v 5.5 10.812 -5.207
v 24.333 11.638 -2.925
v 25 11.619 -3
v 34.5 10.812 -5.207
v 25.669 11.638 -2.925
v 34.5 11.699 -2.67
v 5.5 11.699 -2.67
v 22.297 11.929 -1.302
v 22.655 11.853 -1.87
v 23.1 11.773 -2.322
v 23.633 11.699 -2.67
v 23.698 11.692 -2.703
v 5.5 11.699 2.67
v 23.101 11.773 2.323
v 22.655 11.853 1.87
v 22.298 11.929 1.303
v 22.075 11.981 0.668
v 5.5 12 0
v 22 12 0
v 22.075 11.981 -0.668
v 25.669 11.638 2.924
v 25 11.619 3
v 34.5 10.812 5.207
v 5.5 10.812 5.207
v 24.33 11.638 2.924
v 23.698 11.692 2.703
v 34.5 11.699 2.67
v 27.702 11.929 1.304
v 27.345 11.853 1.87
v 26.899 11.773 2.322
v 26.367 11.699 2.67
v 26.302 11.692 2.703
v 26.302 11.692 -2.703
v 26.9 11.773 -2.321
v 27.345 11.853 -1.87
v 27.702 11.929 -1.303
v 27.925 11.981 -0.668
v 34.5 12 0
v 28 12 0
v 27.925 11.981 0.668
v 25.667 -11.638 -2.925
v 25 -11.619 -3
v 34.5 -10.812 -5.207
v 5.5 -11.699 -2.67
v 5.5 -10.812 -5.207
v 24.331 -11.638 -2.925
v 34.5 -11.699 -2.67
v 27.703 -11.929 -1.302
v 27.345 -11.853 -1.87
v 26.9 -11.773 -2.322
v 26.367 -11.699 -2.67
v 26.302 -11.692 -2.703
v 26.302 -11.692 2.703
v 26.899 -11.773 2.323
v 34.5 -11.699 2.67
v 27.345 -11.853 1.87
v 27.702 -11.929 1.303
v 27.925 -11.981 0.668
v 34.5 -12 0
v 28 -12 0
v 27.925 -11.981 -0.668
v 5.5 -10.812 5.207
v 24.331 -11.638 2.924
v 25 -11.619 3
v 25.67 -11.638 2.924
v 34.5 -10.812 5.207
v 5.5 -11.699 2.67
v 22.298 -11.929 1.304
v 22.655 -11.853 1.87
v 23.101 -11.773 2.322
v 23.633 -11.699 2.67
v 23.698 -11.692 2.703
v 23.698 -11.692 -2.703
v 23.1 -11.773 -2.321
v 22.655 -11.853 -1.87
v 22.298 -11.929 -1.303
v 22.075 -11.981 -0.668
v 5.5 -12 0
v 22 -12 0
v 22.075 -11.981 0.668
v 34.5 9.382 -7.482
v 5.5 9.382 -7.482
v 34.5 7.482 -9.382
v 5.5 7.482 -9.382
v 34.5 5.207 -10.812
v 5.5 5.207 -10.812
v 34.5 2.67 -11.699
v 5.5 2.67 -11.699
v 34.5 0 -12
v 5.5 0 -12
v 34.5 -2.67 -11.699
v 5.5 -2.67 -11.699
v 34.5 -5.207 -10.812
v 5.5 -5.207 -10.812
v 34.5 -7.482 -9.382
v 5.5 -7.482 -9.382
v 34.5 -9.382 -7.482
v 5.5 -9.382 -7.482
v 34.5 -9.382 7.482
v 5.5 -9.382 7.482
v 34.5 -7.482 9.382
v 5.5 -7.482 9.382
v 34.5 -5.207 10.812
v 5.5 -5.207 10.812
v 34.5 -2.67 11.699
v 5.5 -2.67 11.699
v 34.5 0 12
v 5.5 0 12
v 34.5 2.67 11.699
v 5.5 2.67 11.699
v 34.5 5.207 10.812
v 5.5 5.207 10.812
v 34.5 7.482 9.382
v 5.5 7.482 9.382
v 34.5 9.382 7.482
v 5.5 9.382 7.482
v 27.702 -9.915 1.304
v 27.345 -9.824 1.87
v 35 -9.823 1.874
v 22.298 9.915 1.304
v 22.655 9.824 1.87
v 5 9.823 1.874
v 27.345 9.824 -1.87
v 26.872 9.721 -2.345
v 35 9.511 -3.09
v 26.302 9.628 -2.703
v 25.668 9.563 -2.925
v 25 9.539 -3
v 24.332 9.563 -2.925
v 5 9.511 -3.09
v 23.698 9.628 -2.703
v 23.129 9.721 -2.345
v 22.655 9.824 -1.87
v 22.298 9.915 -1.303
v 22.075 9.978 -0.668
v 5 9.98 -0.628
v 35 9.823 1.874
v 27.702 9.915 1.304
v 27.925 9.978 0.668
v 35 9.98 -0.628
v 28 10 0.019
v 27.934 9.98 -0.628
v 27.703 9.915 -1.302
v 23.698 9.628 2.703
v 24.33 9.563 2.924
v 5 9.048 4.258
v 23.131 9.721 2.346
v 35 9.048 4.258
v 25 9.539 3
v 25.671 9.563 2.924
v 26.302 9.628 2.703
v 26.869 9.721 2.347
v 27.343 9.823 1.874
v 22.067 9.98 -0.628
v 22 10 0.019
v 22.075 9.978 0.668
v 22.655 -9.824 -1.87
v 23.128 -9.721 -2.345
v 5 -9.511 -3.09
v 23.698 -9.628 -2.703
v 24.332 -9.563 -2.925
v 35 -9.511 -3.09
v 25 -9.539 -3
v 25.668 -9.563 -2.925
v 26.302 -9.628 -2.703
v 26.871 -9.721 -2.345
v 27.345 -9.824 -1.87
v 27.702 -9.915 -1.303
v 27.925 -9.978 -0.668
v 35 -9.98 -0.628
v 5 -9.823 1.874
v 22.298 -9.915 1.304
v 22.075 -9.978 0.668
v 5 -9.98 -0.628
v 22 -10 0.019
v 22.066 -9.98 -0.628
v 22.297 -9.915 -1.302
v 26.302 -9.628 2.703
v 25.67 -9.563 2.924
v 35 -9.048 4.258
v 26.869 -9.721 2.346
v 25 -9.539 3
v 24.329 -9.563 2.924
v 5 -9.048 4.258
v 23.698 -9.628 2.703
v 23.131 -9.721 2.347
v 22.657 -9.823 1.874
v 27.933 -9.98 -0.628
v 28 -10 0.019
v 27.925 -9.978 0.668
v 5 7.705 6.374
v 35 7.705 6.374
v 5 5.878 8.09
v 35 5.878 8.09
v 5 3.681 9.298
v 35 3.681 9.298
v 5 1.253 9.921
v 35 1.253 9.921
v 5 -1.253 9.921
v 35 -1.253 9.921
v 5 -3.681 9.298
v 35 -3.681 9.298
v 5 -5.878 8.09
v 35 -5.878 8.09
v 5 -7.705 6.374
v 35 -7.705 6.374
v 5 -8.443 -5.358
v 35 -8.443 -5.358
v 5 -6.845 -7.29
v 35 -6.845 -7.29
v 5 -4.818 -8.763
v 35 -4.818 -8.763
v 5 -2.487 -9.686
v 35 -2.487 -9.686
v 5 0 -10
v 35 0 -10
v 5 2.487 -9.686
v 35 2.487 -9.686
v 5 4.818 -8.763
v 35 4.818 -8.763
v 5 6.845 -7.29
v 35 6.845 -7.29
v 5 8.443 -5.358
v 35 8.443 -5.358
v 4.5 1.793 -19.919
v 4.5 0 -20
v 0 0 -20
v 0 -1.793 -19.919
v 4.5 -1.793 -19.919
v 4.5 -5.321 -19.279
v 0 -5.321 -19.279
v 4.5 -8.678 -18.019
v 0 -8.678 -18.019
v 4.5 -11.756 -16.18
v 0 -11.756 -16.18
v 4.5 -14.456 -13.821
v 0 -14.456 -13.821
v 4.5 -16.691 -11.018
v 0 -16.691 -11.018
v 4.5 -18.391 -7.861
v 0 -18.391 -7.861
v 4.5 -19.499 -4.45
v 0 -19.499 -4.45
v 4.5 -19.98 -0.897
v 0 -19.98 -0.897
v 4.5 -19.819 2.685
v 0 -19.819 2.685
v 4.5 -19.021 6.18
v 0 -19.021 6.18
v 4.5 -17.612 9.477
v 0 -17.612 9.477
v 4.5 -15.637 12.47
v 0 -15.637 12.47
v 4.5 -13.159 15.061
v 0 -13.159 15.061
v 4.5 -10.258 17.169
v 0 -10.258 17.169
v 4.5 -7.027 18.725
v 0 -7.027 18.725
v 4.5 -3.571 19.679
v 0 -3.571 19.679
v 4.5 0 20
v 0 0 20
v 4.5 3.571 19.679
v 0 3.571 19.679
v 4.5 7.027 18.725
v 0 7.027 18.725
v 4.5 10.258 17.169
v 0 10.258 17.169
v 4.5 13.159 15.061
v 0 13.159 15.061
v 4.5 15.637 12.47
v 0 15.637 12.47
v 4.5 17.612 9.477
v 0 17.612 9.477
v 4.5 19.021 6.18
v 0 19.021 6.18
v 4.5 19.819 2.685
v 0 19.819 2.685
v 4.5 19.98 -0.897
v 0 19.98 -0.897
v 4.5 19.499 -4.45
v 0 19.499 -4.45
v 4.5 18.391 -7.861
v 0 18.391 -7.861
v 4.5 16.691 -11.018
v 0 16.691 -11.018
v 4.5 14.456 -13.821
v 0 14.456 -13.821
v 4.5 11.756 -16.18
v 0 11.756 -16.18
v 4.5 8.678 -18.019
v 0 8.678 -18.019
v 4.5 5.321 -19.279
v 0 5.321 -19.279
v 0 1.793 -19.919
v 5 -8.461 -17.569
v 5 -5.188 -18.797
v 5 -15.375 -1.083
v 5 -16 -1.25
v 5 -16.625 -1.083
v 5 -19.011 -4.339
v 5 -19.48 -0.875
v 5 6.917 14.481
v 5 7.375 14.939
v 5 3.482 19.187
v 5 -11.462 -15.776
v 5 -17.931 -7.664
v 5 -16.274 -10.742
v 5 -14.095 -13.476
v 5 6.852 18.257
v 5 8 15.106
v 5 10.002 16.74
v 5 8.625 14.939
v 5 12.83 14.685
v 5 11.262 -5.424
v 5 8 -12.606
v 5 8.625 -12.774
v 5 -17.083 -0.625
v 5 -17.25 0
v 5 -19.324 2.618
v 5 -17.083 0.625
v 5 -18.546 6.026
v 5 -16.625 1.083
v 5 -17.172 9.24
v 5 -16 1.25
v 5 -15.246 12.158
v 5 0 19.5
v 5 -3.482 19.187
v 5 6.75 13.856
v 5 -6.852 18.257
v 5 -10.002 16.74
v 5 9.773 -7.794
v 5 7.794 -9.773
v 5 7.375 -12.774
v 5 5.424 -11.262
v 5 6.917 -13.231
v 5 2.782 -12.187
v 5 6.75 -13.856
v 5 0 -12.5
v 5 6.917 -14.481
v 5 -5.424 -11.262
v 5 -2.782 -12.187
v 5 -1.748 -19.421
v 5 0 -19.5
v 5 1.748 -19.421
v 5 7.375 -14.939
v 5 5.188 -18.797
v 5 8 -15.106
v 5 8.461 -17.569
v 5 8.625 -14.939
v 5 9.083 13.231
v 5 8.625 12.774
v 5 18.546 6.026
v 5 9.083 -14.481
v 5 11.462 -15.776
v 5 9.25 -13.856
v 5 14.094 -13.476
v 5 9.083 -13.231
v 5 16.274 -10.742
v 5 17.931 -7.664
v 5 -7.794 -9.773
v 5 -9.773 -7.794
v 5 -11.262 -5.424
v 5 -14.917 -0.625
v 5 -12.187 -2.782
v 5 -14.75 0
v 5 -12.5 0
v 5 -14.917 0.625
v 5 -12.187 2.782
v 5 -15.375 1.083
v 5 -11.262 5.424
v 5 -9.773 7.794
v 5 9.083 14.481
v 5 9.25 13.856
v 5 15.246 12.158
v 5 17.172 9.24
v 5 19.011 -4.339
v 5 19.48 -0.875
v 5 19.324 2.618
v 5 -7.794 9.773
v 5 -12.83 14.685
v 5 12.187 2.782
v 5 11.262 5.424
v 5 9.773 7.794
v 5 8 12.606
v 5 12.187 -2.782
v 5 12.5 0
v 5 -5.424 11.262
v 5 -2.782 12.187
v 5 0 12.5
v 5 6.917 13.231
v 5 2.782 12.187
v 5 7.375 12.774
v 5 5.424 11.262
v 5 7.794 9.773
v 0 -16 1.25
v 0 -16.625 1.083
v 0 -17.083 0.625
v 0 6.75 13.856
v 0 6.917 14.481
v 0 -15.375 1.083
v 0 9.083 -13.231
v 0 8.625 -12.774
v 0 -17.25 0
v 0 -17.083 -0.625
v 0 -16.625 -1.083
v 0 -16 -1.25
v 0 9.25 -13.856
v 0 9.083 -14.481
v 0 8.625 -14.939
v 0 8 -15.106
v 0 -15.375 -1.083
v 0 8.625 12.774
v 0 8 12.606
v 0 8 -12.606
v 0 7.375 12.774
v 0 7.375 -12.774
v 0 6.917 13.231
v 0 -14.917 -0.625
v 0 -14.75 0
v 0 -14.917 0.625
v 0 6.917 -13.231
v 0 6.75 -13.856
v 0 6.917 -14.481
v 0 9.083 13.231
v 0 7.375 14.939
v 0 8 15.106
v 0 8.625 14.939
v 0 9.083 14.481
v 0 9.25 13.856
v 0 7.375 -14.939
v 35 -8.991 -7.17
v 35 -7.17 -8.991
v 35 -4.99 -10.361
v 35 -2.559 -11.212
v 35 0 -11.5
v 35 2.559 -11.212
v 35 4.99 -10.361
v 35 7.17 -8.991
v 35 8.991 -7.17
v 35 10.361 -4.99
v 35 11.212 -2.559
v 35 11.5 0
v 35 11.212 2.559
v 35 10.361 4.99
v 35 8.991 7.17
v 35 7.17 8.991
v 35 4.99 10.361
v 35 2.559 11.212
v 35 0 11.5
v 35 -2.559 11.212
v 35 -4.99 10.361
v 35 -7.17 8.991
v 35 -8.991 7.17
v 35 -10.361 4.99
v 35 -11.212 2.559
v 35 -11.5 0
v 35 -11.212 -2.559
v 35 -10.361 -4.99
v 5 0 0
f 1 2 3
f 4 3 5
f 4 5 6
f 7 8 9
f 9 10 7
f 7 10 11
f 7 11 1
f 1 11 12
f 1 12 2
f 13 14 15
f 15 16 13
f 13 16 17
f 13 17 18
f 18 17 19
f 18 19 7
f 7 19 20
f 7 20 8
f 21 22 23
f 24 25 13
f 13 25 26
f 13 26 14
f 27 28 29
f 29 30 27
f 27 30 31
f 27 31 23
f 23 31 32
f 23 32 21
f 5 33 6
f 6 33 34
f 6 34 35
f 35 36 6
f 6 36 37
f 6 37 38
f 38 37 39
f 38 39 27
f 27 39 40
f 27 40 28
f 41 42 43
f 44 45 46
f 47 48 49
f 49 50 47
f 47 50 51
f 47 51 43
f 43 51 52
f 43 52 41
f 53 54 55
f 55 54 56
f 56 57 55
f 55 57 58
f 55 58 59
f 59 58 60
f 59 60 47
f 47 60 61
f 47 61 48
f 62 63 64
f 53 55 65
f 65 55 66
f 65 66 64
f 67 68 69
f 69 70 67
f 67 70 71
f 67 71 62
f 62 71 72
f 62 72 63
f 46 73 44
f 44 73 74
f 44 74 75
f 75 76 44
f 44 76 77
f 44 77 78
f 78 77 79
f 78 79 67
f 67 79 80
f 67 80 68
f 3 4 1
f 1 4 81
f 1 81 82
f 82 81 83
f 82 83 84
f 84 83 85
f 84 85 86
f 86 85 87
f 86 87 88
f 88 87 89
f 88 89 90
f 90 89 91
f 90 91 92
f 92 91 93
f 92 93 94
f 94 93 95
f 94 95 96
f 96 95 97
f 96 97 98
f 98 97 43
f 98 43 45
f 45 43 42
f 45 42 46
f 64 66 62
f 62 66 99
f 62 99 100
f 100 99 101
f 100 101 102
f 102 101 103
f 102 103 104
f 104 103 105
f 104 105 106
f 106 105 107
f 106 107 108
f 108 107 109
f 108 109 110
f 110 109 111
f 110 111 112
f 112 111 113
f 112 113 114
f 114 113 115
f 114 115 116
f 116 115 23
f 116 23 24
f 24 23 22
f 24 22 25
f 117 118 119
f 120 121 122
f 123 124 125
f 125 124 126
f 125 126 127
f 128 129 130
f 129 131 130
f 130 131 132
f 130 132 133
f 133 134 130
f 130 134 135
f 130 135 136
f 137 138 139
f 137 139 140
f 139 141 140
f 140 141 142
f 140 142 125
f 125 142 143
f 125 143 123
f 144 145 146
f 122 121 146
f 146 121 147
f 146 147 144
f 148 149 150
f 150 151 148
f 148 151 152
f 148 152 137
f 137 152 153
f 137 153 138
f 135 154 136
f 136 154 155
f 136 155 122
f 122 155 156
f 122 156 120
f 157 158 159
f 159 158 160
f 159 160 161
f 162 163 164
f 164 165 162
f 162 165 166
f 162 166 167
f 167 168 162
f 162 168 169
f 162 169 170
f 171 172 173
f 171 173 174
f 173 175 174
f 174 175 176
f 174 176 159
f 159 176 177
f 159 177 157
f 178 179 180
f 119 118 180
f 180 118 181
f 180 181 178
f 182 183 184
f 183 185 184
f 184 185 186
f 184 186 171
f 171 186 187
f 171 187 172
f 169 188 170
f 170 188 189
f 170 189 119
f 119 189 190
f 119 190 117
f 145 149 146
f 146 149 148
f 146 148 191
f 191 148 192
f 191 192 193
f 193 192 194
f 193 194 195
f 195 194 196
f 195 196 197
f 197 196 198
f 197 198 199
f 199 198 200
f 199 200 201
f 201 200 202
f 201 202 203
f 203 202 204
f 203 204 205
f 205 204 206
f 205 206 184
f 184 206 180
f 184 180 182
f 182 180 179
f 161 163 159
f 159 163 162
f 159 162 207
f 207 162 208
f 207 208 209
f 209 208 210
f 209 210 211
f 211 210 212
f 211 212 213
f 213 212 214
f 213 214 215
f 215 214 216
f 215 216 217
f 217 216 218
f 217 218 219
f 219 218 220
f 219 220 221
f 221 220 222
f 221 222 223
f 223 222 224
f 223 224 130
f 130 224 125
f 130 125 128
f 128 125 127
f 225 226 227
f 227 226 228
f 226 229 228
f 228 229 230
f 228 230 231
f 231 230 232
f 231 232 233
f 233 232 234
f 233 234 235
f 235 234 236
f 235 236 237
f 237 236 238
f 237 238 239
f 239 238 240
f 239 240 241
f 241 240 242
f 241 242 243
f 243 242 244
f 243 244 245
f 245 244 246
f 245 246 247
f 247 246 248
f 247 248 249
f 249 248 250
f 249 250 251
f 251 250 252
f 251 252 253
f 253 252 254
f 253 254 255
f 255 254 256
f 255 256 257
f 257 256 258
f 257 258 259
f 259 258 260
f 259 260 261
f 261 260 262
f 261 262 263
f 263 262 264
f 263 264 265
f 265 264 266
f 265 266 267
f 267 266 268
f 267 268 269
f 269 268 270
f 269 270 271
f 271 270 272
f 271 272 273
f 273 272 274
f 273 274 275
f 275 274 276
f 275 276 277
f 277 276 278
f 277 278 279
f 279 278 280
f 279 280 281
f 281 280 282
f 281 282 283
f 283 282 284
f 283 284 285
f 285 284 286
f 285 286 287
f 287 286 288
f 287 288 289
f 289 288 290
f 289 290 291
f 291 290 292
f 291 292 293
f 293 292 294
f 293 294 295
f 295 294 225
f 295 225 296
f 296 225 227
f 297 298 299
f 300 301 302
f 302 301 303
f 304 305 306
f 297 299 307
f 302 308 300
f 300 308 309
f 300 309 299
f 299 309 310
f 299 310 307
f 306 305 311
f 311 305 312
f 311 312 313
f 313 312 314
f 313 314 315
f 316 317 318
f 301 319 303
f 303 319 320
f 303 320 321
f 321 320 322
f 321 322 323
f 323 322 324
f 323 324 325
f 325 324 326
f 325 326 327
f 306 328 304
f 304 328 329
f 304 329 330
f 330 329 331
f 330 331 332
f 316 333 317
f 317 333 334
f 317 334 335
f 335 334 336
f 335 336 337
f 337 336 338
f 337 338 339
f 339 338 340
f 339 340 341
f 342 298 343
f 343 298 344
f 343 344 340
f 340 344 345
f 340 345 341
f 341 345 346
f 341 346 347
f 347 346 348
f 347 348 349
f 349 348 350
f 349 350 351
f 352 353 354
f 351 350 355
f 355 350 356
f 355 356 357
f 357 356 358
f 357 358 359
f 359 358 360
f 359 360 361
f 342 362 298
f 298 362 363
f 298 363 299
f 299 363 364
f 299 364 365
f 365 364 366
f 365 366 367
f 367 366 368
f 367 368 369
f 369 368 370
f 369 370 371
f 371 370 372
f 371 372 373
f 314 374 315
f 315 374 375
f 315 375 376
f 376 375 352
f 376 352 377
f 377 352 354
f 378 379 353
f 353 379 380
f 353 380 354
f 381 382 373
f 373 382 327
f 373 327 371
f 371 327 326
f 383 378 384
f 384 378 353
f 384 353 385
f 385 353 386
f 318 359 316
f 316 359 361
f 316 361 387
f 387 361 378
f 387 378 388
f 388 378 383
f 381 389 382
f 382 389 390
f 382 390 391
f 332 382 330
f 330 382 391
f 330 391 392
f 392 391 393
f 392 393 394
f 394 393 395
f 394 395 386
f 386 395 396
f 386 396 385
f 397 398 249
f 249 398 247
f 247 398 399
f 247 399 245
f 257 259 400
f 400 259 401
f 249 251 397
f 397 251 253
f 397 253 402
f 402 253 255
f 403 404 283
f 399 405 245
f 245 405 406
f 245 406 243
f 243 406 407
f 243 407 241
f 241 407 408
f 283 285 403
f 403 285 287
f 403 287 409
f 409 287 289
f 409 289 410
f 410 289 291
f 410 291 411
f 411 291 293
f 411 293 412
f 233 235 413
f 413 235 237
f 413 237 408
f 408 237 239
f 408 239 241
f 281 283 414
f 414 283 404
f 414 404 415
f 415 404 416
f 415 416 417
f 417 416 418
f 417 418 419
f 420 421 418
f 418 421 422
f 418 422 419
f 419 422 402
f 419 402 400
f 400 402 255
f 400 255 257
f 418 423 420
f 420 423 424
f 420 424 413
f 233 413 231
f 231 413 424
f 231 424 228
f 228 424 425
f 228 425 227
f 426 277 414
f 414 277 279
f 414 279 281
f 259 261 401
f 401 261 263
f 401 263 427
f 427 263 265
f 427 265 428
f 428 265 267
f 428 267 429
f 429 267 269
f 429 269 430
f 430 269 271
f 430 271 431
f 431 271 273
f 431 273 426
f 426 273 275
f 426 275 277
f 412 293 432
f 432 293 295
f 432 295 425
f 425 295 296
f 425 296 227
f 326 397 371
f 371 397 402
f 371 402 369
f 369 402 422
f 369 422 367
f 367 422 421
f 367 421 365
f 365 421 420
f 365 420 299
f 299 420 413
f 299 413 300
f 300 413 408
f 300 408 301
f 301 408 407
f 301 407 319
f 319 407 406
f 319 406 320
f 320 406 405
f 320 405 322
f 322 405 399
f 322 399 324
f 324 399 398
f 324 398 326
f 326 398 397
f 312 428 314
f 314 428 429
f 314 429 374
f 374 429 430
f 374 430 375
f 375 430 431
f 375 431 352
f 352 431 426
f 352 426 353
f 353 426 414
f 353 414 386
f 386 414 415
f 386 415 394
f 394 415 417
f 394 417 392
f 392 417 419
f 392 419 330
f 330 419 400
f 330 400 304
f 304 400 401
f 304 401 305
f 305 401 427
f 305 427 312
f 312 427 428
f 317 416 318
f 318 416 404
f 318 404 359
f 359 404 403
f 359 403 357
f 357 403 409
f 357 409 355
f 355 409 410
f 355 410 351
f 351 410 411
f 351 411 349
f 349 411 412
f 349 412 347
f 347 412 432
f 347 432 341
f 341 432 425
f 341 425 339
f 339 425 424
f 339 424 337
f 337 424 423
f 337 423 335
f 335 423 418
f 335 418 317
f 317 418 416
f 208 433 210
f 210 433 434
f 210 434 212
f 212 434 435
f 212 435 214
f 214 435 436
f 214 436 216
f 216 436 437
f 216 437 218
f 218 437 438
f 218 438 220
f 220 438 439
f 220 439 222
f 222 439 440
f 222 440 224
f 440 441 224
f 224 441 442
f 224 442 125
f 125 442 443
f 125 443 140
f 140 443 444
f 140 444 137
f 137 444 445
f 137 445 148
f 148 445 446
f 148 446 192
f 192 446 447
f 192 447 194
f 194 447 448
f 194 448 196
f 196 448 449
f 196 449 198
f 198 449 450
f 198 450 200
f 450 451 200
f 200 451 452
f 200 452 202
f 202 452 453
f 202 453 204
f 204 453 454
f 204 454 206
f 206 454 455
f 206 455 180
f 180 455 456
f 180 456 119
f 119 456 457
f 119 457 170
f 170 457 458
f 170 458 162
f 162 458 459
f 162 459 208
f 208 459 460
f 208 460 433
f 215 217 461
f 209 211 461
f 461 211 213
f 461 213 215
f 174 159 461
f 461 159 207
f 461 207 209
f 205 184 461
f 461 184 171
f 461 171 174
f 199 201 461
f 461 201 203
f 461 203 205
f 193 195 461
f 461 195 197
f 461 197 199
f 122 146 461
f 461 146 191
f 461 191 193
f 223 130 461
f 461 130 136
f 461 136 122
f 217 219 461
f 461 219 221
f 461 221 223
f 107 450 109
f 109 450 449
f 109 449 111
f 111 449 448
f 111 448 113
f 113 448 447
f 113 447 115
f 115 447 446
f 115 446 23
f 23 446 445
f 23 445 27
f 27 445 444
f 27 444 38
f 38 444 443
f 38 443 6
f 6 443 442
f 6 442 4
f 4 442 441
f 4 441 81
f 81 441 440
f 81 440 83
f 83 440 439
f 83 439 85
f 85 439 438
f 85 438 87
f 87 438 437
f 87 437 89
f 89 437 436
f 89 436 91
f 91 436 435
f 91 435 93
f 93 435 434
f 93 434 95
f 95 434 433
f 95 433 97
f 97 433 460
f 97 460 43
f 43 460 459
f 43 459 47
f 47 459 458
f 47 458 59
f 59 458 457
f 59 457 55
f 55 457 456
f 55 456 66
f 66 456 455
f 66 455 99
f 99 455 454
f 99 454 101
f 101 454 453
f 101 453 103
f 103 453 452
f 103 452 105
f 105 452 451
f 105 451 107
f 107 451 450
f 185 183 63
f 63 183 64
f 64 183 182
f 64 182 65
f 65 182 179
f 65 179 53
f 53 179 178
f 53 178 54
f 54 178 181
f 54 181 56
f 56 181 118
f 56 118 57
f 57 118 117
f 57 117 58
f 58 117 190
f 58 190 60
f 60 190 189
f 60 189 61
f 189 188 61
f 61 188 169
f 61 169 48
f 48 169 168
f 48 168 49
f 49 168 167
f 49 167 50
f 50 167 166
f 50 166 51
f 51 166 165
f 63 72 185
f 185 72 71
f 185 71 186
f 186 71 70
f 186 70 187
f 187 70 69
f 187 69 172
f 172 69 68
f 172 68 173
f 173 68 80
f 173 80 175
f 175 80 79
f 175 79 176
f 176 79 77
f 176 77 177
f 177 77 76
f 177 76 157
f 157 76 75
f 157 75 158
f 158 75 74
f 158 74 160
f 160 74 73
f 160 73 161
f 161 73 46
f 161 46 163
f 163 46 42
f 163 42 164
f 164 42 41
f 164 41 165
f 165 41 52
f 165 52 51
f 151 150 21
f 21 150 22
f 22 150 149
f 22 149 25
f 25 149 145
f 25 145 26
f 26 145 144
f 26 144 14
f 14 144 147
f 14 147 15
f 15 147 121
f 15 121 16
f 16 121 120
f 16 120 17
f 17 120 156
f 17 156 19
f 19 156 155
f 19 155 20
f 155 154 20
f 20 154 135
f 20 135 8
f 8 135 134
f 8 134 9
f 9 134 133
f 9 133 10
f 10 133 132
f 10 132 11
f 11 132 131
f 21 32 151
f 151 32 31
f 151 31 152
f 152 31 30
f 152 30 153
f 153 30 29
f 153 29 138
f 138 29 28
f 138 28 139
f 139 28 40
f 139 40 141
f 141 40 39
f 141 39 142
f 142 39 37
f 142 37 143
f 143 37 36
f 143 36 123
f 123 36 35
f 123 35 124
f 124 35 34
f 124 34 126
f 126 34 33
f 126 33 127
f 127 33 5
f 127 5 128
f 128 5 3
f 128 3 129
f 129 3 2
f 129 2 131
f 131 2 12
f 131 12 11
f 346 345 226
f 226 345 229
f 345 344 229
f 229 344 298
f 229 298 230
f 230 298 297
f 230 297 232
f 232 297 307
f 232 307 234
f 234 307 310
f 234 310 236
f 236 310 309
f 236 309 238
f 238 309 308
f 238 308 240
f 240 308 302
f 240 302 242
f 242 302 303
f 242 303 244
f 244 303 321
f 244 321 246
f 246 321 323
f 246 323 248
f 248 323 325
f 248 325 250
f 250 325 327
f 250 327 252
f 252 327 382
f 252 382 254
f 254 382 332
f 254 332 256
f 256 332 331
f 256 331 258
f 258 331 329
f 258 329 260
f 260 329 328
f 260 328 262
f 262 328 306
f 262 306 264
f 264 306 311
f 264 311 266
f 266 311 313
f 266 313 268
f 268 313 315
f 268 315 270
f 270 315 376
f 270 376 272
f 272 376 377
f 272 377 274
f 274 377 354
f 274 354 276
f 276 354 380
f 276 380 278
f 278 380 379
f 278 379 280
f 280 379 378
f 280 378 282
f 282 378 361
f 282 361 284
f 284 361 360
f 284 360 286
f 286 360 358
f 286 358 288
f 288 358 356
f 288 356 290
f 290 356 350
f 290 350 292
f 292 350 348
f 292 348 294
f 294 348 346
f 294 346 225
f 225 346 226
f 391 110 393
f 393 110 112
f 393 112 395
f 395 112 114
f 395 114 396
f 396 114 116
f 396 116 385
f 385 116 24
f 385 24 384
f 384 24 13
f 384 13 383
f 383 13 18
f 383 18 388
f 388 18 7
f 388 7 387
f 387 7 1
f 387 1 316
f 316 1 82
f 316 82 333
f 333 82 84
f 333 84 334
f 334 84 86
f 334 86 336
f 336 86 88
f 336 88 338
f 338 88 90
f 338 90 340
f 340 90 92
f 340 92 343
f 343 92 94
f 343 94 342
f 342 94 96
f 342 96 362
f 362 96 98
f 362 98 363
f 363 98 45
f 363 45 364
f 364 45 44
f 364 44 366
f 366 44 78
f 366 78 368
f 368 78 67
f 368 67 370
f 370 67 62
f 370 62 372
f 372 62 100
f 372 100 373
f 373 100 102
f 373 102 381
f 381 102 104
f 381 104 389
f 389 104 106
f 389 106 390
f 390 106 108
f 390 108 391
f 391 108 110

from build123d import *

# Parameters (mm, degrees)
SKETCH_1_R               = 20
EXTRUDE_1_DEPTH          = 5
M3X0_5_1_D               = 2.5
M3X0_5_1_DEPTH           = 7.5
M3X0_5_1_TIP             = 0.751075774
SKETCH_6_R               = 12
EXTRUDE_2_DEPTH          = 30
SKETCH_7_R               = 10
CUT_EXTRUDE_2_DEPTH      = 30
CHAMFER_1_SIZE           = 0.5
CUT_EXTRUDE_3_DEPTH      = 46
CUT_EXTRUDE_3_DEPTH_BACK = 46
SKETCH_8_R               = 3
CHAMFER_2_SIZE           = 0.5
CHAMFER_3_SIZE           = 0.5


with BuildPart() as part:
    # 草图1 → 凸台-拉伸1 (new body)
    with BuildSketch(Plane(origin=(0, 0, 0), x_dir=(0, 0, -1), z_dir=(1, 0, 0))):
        Circle(SKETCH_1_R)
    extrude(amount=EXTRUDE_1_DEPTH)

    # M3x0.5 螺纹孔1
    with Locations(Plane.ZY):
        with Locations((-13.856406461, 8), (13.856406461, 8), (0, -16)):
            Hole(M3X0_5_1_D / 2, depth=M3X0_5_1_DEPTH)
            with Locations((0, 0, -(M3X0_5_1_DEPTH + M3X0_5_1_TIP / 2))):  # 118° drill point
                Cone(0, M3X0_5_1_D / 2, M3X0_5_1_TIP, mode=Mode.SUBTRACT)

    # 草图6 → 凸台-拉伸2 (add)
    with BuildSketch(Plane(origin=(5, 0, 0), x_dir=(0, 0, -1), z_dir=(1, 0, 0))):
        Circle(SKETCH_6_R)
    extrude(amount=EXTRUDE_2_DEPTH)

    # 草图7 → 切除-拉伸2 (cut)
    with BuildSketch(Plane(origin=(35, 0, 0), x_dir=(0, 0, -1), z_dir=(1, 0, 0))):
        Circle(SKETCH_7_R)
    extrude(amount=-CUT_EXTRUDE_2_DEPTH, mode=Mode.SUBTRACT)

    # 倒角1
    chamfer_1_edges = [part.edges().sort_by_distance(p)[0] for p in [
        (35, 0, 12),
    ]]
    chamfer(chamfer_1_edges, length=CHAMFER_1_SIZE)

    # 草图8 → 切除-拉伸3 (cut, two sides: drawn at the far end of the back side and taken through both)
    with BuildSketch(Plane(origin=(0, 0, 0), x_dir=(1, 0, 0), z_dir=(0, 1, 0)).offset(-CUT_EXTRUDE_3_DEPTH_BACK)):
        with Locations(Location((25, 0, 0), (0, 0, 90))):
            Circle(SKETCH_8_R)
    extrude(amount=CUT_EXTRUDE_3_DEPTH + CUT_EXTRUDE_3_DEPTH_BACK, mode=Mode.SUBTRACT)

    # 倒角2
    chamfer_2_edges = [part.edges().sort_by_distance(p)[0] for p in [
        (5, 0, 20),
    ]]
    chamfer(chamfer_2_edges, length=CHAMFER_2_SIZE)

    # 倒角3
    chamfer_3_edges = [part.edges().sort_by_distance(p)[0] for p in [
        (5, 0, 12),
    ]]
    chamfer(chamfer_3_edges, length=CHAMFER_3_SIZE)


solid = part.part
